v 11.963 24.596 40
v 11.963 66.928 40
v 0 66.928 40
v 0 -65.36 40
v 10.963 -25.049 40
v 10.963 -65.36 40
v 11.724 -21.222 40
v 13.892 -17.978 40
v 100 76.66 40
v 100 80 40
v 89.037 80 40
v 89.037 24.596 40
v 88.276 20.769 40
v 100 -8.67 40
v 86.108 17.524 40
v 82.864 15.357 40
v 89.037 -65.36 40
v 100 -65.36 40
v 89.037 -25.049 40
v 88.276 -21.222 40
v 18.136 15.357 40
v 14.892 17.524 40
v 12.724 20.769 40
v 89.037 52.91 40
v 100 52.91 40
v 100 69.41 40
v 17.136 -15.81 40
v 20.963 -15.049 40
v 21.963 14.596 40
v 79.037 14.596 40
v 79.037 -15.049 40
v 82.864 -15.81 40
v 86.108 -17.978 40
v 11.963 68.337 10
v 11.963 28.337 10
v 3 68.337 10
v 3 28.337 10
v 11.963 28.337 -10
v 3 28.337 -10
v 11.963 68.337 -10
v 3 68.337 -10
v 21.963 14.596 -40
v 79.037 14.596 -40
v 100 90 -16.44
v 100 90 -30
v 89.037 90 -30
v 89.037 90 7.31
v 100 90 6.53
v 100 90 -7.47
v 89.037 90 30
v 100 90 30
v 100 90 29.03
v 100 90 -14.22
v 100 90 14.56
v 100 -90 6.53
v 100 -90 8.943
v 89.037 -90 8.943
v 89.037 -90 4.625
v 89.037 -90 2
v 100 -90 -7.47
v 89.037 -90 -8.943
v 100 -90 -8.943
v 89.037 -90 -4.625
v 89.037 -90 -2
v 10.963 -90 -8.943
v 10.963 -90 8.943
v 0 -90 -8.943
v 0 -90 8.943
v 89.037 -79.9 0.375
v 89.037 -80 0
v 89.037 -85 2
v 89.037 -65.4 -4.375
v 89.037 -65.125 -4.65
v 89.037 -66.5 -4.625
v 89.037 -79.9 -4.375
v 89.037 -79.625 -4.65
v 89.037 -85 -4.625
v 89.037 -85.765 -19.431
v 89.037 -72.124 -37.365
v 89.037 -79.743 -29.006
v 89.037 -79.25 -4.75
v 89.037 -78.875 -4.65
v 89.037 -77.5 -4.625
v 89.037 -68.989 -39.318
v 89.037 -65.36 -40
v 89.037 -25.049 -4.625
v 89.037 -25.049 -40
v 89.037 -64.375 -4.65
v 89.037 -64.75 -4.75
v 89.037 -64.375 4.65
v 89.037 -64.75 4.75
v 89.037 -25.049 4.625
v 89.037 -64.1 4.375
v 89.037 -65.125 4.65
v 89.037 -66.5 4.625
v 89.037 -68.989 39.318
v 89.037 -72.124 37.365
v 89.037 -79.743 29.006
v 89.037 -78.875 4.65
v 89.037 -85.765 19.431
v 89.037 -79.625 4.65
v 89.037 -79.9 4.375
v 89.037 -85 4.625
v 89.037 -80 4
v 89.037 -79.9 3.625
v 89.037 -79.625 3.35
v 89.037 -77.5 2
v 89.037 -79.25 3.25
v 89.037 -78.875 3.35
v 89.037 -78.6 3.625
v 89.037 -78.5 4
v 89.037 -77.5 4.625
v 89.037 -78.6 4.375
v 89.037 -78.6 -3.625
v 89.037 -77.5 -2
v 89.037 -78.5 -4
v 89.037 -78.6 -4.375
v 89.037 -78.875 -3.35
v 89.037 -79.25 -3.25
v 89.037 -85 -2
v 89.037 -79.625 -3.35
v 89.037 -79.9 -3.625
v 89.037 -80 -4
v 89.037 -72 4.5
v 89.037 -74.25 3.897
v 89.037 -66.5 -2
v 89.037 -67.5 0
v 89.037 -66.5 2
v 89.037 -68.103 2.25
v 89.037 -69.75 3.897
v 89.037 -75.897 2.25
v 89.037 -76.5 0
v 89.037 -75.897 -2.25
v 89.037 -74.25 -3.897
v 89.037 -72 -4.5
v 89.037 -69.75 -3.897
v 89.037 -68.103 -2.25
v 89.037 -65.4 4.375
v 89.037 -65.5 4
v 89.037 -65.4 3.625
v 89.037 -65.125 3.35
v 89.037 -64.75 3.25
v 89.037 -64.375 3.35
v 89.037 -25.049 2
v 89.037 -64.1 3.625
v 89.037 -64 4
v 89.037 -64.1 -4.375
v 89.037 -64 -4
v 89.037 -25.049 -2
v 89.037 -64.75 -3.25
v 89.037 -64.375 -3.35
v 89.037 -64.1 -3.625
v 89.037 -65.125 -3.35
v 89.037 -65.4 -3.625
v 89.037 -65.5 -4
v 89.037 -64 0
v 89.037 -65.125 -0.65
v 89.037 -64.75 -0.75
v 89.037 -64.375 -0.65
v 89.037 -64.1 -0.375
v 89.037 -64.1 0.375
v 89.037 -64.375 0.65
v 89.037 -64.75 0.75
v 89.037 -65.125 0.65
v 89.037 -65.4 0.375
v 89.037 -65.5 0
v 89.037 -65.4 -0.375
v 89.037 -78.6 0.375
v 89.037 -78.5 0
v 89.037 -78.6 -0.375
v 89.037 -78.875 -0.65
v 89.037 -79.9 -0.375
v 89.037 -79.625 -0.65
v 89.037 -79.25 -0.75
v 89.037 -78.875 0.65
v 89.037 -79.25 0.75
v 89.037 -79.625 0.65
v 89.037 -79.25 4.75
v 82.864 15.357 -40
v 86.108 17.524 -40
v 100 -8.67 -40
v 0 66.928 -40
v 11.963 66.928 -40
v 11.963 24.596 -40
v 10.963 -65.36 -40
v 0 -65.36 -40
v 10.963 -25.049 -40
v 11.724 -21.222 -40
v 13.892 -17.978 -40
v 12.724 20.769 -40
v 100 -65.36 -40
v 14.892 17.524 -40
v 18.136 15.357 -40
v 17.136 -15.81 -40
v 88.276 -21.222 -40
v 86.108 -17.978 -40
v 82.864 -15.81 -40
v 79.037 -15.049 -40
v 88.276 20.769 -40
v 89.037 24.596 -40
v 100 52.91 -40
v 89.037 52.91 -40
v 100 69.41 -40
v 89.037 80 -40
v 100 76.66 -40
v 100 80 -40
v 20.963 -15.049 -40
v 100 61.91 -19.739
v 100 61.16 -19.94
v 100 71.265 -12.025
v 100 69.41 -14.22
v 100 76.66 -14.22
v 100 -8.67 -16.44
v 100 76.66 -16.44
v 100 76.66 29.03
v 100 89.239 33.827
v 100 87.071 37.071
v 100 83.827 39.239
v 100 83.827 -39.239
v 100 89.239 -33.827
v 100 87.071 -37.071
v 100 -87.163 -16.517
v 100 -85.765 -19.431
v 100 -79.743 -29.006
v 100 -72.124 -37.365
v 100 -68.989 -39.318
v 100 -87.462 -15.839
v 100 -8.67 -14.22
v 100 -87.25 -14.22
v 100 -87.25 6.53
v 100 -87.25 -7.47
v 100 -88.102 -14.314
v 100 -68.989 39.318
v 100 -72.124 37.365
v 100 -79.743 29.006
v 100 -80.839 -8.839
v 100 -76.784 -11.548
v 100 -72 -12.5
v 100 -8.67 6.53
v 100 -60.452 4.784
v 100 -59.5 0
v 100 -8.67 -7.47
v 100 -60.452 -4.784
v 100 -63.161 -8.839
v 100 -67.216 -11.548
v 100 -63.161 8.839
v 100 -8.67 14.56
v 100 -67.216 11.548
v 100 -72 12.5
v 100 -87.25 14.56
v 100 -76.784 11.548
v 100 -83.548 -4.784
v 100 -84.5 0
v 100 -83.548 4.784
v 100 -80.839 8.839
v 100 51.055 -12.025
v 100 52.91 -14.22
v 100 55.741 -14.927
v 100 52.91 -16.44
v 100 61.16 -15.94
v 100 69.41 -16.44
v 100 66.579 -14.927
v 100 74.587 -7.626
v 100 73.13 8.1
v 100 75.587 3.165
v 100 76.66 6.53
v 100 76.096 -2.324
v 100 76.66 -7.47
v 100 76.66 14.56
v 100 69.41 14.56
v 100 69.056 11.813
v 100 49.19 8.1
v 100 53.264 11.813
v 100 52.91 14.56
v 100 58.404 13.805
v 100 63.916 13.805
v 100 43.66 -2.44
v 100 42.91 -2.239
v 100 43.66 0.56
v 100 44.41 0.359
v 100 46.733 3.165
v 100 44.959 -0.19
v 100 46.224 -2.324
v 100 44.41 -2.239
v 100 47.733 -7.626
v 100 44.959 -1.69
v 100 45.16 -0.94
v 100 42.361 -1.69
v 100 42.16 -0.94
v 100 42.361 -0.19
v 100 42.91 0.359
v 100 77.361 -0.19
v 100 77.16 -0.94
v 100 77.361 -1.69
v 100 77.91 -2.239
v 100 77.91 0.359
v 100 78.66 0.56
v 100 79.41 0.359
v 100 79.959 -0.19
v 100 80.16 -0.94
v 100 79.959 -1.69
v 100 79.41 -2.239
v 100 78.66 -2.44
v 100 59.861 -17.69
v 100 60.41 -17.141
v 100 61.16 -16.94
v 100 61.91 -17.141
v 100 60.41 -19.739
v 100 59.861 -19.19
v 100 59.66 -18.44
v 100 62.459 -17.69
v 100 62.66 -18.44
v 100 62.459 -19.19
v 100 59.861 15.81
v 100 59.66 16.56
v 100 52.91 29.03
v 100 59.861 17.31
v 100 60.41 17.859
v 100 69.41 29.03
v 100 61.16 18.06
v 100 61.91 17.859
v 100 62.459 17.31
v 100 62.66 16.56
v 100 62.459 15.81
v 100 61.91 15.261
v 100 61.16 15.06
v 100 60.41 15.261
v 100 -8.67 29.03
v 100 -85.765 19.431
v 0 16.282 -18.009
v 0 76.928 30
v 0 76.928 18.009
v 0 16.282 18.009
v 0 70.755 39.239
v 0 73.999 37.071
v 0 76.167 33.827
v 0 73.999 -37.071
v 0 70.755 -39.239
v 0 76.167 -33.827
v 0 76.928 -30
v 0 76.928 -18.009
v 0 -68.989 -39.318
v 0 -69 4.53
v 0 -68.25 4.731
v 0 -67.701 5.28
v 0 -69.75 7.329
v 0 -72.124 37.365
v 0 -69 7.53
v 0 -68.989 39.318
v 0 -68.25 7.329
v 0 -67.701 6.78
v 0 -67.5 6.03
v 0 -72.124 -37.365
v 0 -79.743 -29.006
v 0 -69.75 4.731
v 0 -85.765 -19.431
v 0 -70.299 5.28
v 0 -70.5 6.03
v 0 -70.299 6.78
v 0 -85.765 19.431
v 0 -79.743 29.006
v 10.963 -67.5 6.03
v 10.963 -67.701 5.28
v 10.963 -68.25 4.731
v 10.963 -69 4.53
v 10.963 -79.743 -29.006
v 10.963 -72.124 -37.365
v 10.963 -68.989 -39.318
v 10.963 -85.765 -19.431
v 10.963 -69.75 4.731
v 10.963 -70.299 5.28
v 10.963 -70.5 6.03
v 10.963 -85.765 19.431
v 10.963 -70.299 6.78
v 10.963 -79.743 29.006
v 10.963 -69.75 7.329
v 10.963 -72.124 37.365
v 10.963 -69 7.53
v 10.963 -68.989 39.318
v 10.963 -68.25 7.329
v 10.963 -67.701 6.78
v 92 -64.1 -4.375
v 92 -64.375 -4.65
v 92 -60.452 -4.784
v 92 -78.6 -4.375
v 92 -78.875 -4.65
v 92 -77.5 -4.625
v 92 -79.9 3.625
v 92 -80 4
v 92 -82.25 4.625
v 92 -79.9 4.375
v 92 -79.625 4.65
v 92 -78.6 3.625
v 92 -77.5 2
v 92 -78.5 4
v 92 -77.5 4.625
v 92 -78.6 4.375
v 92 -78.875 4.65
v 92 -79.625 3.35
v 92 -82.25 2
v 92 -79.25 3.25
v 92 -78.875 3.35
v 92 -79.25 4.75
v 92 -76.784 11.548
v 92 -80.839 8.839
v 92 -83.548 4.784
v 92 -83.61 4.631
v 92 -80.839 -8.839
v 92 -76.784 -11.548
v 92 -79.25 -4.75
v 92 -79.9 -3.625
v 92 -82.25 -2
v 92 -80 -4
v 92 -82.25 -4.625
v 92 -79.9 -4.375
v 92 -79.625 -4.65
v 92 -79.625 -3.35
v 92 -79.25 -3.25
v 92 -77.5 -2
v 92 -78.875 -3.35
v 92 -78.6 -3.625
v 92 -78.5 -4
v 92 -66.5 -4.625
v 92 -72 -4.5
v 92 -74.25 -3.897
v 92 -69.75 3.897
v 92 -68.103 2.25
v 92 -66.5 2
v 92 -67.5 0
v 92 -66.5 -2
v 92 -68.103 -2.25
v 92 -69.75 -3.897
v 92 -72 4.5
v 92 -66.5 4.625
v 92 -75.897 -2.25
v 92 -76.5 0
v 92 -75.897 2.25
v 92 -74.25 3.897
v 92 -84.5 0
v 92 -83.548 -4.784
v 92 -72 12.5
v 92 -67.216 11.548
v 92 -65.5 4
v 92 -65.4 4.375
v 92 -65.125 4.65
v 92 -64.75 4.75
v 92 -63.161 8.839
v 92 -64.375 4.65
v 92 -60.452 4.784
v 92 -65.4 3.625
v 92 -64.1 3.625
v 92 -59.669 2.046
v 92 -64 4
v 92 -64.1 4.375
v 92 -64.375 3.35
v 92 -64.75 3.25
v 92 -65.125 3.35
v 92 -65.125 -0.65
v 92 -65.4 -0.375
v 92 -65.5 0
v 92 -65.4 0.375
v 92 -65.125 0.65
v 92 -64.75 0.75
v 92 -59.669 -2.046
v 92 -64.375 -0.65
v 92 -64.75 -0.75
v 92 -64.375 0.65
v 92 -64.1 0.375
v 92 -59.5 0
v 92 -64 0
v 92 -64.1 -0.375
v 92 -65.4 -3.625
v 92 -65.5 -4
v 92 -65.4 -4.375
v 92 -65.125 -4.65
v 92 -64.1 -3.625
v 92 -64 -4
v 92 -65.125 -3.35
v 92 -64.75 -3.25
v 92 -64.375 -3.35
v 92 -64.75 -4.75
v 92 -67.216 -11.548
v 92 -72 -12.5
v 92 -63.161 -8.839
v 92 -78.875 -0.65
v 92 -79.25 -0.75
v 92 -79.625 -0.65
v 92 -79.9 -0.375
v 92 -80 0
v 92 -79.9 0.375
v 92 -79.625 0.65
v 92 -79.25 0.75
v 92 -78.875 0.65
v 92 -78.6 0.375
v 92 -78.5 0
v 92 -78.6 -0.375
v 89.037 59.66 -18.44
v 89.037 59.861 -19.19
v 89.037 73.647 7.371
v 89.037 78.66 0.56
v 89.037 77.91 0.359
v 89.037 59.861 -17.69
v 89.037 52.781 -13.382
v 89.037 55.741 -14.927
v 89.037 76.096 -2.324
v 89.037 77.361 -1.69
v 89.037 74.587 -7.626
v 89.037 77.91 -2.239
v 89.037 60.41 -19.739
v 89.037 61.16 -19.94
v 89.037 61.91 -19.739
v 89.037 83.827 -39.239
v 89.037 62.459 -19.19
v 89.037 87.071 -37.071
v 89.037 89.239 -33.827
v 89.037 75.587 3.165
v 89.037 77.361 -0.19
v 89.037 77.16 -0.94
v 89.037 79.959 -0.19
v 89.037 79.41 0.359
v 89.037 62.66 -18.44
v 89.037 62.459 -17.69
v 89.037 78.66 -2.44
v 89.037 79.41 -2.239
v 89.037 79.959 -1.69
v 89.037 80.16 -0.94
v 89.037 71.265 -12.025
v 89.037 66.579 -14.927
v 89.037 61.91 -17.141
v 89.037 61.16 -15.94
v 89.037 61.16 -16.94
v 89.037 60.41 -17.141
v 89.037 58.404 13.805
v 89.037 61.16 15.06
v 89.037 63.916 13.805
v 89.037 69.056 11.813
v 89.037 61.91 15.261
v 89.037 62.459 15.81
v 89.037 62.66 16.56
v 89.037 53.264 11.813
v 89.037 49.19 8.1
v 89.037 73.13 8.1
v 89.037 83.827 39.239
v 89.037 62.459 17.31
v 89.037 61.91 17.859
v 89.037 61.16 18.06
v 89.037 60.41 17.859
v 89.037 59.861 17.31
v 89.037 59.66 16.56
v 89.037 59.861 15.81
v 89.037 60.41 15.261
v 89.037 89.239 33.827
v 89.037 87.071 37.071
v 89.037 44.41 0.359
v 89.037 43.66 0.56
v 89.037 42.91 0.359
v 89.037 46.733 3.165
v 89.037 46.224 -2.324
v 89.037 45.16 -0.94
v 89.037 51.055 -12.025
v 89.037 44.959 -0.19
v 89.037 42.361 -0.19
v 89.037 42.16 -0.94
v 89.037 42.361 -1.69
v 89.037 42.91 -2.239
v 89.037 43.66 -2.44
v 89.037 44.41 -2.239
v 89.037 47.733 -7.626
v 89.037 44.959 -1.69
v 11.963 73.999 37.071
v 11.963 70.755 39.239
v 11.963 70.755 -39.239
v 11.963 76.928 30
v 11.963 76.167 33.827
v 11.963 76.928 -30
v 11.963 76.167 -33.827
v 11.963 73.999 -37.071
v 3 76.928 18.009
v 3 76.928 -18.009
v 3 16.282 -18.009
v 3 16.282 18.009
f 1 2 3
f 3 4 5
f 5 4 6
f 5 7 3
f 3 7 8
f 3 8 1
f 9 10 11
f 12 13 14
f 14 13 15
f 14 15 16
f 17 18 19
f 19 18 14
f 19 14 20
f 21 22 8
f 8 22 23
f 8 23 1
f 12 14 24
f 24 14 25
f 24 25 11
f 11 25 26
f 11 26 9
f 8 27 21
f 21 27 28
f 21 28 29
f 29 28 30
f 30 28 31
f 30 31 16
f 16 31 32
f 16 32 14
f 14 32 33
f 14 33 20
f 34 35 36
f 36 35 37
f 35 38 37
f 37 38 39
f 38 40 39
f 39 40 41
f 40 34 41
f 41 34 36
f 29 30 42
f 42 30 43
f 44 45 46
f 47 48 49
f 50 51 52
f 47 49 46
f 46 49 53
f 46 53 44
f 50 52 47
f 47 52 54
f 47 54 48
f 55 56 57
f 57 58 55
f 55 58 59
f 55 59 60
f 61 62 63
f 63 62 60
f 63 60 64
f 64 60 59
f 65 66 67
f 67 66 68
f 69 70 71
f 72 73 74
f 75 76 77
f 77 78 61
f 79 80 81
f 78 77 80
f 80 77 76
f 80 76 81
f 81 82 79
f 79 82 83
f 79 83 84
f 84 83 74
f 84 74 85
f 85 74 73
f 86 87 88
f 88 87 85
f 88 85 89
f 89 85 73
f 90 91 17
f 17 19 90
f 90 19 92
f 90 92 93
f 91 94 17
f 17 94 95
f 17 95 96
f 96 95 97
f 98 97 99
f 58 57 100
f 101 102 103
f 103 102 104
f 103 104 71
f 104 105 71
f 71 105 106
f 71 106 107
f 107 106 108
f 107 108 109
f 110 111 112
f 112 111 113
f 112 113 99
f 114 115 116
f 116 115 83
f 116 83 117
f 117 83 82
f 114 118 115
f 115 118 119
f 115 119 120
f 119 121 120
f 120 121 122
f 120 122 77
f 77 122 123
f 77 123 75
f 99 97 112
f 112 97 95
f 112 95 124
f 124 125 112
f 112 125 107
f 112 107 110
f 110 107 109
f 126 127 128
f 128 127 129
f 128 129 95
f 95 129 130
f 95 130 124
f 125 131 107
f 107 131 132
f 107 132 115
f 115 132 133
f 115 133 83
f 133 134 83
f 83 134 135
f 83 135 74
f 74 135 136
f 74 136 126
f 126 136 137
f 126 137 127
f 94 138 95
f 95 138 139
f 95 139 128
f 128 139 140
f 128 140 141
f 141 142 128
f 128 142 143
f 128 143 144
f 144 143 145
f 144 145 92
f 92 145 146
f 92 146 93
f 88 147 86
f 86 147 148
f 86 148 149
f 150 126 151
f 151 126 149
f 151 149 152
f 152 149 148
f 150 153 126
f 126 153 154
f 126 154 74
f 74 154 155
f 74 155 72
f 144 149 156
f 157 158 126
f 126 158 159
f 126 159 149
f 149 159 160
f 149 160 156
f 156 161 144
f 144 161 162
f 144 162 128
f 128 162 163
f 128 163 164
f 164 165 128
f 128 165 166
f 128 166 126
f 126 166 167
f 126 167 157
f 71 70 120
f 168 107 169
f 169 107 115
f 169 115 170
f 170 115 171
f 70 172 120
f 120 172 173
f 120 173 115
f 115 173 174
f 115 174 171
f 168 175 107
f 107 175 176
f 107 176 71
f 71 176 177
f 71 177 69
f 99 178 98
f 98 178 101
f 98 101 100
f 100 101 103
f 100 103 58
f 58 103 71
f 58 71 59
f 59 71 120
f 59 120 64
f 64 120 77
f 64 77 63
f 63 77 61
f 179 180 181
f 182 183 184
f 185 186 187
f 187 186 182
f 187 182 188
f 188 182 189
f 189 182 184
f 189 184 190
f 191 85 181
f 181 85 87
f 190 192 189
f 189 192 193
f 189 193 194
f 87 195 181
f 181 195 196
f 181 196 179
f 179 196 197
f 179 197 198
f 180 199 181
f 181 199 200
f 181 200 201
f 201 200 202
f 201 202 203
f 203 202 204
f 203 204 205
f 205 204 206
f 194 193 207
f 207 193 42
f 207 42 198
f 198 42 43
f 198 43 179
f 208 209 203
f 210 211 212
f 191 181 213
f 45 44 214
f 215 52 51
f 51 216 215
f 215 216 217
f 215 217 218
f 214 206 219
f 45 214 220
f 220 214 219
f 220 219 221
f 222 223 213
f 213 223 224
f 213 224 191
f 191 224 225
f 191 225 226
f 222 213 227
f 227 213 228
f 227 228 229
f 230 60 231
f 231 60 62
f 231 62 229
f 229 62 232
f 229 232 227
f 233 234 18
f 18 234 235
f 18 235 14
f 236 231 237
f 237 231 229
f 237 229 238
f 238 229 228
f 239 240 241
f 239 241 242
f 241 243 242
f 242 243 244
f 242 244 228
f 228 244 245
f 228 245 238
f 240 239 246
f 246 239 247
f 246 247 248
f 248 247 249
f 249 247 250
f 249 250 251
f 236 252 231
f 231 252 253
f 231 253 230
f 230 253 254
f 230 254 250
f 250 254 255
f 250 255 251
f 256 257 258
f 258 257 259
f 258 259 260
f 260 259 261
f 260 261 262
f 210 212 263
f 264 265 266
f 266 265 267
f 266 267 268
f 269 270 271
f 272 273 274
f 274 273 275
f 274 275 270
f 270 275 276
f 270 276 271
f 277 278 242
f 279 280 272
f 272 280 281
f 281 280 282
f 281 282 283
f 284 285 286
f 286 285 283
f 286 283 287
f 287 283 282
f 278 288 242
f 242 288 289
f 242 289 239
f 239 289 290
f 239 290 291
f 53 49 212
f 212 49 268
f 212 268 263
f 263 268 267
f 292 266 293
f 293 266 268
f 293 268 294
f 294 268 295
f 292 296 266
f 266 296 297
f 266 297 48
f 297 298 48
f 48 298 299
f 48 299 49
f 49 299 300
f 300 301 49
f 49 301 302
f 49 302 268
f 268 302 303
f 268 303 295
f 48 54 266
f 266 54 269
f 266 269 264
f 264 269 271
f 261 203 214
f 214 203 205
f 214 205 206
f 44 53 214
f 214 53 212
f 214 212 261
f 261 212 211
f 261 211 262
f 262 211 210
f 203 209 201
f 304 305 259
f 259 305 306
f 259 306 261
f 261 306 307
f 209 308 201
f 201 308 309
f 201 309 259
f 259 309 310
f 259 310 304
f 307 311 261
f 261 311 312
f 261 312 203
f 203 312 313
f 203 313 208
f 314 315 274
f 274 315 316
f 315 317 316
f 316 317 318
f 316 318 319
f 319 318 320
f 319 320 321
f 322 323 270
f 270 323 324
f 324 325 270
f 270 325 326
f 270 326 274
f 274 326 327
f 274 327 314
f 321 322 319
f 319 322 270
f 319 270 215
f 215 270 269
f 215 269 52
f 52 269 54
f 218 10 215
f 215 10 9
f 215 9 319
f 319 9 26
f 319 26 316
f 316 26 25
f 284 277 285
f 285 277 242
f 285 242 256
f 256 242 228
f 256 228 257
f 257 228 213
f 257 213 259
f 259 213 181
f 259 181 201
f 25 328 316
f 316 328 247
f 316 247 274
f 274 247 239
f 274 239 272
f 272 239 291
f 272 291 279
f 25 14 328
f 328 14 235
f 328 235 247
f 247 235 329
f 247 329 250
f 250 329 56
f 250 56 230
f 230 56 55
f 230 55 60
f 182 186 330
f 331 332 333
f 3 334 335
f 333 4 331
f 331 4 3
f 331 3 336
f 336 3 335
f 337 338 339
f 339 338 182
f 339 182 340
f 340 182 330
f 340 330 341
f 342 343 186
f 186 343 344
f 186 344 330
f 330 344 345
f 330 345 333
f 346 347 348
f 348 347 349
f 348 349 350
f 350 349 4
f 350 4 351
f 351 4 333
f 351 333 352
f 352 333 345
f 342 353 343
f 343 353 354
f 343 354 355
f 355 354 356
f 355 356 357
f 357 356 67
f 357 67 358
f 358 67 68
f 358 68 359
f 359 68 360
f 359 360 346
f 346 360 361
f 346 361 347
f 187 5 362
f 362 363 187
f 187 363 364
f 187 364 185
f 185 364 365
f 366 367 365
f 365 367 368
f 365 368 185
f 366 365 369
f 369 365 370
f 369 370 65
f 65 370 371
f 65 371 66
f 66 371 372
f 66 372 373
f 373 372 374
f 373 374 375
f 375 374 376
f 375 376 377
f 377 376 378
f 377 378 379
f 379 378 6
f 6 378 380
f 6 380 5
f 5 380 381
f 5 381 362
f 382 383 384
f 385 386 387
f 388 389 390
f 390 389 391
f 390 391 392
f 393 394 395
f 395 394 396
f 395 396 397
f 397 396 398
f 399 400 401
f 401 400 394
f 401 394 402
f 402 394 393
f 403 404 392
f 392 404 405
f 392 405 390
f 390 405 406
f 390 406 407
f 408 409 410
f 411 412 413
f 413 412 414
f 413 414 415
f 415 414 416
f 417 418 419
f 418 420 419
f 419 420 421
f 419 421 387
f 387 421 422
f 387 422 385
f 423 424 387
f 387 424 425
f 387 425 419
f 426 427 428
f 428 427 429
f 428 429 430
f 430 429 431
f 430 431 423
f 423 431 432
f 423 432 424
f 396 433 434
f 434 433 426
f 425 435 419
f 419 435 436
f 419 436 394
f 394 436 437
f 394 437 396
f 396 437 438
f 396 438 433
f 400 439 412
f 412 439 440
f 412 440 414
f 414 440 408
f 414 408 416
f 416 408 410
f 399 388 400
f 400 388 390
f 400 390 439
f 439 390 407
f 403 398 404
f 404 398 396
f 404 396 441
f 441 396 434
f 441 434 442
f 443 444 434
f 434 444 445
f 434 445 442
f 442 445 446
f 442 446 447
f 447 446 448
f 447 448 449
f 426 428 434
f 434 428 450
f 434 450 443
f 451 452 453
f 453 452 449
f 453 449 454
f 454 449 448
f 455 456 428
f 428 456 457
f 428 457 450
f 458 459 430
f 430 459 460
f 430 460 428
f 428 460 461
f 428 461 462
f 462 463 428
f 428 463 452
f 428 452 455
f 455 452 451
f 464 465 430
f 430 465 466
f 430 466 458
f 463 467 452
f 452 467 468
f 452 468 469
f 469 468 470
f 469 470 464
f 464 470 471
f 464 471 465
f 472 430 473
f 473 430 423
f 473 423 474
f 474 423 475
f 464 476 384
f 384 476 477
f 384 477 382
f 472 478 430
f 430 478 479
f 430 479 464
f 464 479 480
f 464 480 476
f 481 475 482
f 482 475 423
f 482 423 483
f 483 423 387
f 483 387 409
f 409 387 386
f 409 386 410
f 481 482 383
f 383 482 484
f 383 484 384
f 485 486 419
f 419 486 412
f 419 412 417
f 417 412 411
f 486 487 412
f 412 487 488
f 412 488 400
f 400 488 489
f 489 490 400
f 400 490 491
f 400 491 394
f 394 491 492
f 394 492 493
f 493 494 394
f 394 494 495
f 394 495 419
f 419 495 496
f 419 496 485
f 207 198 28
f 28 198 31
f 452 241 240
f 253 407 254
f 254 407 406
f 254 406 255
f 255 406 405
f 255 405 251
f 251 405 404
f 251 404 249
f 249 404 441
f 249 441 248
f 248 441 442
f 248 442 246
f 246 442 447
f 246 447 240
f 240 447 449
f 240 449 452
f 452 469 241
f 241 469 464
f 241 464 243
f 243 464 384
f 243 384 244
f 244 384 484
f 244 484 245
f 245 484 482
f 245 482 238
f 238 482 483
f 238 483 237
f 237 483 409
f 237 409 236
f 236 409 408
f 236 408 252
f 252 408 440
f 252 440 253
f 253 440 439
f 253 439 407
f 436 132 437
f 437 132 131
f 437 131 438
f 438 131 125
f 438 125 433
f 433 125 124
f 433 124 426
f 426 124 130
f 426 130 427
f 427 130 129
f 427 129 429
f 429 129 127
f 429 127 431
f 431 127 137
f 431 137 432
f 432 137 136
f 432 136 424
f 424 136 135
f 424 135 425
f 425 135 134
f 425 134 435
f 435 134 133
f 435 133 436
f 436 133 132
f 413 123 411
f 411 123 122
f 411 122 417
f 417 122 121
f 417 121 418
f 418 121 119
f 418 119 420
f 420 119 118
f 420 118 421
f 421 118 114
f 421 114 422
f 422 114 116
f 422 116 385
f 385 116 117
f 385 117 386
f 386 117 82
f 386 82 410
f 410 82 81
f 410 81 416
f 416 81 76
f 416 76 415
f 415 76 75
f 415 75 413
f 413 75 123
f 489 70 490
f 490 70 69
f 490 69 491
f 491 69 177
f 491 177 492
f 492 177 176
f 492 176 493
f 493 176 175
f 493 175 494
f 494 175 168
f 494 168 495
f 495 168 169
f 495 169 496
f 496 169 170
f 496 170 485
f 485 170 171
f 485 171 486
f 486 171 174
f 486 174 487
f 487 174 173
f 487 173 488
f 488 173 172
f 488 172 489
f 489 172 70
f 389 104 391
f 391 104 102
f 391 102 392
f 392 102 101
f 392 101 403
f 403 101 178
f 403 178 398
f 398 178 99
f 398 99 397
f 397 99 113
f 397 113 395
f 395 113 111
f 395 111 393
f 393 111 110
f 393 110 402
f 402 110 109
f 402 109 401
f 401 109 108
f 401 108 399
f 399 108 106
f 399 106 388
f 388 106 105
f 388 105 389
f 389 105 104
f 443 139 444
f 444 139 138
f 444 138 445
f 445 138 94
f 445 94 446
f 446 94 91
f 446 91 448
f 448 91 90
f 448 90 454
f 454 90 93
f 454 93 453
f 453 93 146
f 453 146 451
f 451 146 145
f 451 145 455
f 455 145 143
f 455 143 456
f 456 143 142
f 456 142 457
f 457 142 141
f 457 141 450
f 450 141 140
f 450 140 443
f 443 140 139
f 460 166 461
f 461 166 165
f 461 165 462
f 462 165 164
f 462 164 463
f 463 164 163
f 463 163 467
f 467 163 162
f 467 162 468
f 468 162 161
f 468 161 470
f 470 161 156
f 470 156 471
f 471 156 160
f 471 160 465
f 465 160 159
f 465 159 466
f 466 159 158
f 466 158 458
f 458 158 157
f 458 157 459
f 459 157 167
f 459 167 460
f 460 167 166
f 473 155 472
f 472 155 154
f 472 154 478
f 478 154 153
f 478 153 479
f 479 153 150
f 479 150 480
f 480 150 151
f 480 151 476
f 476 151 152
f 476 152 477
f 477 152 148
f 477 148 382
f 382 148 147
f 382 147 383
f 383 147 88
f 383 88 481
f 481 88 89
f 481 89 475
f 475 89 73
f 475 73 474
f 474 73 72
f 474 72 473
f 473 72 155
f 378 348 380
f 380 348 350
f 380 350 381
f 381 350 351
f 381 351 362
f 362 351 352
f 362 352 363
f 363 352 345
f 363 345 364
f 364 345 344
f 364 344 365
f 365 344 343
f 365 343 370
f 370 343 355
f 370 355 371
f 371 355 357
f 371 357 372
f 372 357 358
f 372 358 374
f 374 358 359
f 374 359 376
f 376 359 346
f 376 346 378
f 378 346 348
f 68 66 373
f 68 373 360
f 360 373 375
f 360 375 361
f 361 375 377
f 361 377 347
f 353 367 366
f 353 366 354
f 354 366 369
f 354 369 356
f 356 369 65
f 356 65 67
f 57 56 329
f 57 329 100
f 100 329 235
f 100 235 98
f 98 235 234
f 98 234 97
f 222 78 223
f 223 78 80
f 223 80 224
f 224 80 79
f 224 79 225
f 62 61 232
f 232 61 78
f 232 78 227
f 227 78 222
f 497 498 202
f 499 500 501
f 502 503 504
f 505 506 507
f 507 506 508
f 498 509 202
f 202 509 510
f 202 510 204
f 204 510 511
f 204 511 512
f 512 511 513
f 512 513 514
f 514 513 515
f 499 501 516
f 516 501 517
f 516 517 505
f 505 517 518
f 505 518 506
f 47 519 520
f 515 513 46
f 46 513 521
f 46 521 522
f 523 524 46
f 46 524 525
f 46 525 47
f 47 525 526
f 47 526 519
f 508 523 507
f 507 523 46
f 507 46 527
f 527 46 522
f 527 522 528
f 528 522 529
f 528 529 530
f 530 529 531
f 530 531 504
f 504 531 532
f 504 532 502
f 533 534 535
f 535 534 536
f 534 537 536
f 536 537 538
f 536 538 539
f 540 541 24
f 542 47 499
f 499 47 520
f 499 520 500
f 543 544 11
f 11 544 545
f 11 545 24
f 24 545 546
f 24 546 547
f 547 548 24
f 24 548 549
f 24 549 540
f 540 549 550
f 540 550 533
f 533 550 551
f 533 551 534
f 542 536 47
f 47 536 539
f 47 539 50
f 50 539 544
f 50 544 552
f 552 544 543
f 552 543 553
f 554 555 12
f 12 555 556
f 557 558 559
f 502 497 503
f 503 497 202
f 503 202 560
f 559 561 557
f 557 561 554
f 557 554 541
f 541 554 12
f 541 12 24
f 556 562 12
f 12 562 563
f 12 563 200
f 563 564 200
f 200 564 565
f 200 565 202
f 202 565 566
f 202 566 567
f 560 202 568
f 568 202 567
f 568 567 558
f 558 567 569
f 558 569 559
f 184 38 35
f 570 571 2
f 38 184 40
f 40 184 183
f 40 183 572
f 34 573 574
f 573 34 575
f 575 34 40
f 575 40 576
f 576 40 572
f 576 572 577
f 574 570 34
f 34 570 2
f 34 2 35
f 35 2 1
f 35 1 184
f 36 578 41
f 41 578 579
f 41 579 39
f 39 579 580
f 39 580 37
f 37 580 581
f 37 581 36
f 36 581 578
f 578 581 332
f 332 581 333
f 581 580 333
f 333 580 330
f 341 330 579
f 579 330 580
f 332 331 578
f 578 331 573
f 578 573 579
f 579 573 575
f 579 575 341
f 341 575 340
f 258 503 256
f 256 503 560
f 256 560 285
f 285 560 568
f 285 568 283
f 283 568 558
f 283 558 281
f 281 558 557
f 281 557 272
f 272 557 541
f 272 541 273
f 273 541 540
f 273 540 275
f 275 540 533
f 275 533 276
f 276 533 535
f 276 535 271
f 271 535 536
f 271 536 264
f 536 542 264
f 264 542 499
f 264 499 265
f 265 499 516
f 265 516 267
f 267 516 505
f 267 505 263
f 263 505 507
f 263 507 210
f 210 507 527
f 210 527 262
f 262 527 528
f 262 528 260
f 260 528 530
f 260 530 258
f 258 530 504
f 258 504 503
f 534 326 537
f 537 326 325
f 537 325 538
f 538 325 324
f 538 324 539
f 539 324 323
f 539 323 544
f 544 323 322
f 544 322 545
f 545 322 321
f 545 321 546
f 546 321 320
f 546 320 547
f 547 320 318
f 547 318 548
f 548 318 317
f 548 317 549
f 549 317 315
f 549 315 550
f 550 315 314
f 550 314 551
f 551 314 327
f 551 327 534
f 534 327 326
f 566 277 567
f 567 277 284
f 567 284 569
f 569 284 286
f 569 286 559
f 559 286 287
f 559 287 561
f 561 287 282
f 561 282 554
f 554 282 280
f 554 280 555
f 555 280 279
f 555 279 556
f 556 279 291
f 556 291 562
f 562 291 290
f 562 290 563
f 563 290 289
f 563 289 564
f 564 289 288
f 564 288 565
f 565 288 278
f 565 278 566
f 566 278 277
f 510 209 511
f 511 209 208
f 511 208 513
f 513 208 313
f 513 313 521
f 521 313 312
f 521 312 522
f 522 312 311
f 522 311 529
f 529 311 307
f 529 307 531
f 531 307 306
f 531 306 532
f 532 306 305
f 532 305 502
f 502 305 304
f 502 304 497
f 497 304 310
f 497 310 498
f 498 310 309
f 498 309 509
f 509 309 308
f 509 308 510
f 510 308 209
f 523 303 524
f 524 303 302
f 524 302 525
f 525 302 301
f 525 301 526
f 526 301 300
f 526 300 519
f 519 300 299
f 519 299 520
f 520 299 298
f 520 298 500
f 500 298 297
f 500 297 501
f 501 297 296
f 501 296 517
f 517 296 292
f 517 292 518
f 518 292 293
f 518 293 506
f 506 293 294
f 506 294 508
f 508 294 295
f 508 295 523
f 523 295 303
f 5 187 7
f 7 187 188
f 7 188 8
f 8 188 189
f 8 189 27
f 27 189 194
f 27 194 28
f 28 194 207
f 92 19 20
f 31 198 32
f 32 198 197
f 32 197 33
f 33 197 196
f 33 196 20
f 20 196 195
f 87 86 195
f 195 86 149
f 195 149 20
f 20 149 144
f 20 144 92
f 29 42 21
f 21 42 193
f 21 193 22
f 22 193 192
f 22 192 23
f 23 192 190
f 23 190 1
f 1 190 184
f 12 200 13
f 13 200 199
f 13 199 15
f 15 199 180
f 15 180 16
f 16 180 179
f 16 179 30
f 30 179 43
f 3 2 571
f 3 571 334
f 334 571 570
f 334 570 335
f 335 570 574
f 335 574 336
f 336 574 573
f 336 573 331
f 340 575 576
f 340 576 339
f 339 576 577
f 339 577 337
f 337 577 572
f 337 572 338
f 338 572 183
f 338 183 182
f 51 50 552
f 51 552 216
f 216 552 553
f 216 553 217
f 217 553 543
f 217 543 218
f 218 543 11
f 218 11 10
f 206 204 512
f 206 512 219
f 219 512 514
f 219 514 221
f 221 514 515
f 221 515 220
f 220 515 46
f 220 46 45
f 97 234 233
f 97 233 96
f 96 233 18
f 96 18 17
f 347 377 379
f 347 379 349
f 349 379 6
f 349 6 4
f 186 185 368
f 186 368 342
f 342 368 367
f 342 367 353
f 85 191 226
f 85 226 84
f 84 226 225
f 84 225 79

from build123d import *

# Parameters (mm, degrees)
SKETCH1_W           = 80
SKETCH1_H           = 180
BOSS_EXTRUDE1_DEPTH = 100
SKETCH2_W           = 78.07363092
SKETCH2_H           = 74.951044638
CUT_EXTRUDE1_DEPTH  = 90
SKETCH3_R           = 12.5
CUT_EXTRUDE2_DEPTH  = 8
SKETCH4_R           = 0.75
CUT_EXTRUDE3_DEPTH  = 8
SKETCH5_R           = 1.5
CUT_EXTRUDE4_DEPTH  = 18
CUT_EXTRUDE5_DEPTH  = 110
SKETCH8_W           = 78.07363092
SKETCH8_H           = 150.808878852
CUT_EXTRUDE7_DEPTH  = 110
SKETCH12_W          = 80
SKETCH12_H          = 75.404439426
BOSS_EXTRUDE2_DEPTH = 1
SKETCH13_W          = 20
SKETCH13_H          = 40
CUT_EXTRUDE9_DEPTH  = 18
SKETCH14_W          = 36.018811194
SKETCH14_H          = 61.676046566
CUT_EXTRUDE10_DEPTH = 3
SKETCH15_W          = 80
SKETCH15_H          = 13.072149311
CUT_EXTRUDE11_DEPTH = 30
SKETCH16_R          = 15
CUT_EXTRUDE12_DEPTH = 30
SKETCH17_R          = 1.5
CUT_EXTRUDE13_DEPTH = 13
FILLET1_R           = 10
FILLET2_R           = 10
FILLET3_R           = 10


with BuildPart() as part:
    # Sketch1 → Boss-Extrude1 (new body)
    with BuildSketch(Plane(origin=(0, 0, 0), x_dir=(0, 0, -1), z_dir=(1, 0, 0))):
        Rectangle(SKETCH1_W, SKETCH1_H)
    extrude(amount=BOSS_EXTRUDE1_DEPTH)

    # Sketch2 → Cut-Extrude1 (cut)
    with BuildSketch(Plane.XY.offset(40)):
        with Locations((50, -52.524477681)):
            Rectangle(SKETCH2_W, SKETCH2_H)
    extrude(amount=-CUT_EXTRUDE1_DEPTH, mode=Mode.SUBTRACT)

    # Sketch3 → Cut-Extrude2 (cut)
    with BuildSketch(Plane(origin=(100, 0, 0), x_dir=(0, 0, -1), z_dir=(1, 0, 0))):
        with Locations((0, -72)):
            Circle(SKETCH3_R)
    extrude(amount=-CUT_EXTRUDE2_DEPTH, mode=Mode.SUBTRACT)

    # Sketch4 → Cut-Extrude3 (cut)
    with BuildSketch(Plane.ZY.offset(-89.03681546)):
        with BuildLine():
            ThreePointArc((-4.5, -72), (0, -76.5), (4.5, -72))
            Line((4.5, -72), (-4.5, -72))
        make_face()
        with BuildLine():
            Line((-4.5, -72), (4.5, -72))
            ThreePointArc((4.5, -72), (0, -67.5), (-4.5, -72))
        make_face()
        with Locations(Location((-4, -64.75, 0), (0, 0, 270))):
            Circle(SKETCH4_R)
        with Locations(Location((0, -64.75, 0), (0, 0, 270))):
            Circle(SKETCH4_R)
        with Locations(Location((4, -64.75, 0), (0, 0, 270))):
            Circle(SKETCH4_R)
        with Locations(Location((4, -79.25, 0), (0, 0, 270))):
            Circle(SKETCH4_R)
        with Locations(Location((0, -79.25, 0), (0, 0, 270))):
            Circle(SKETCH4_R)
        with Locations(Location((-4, -79.25, 0), (0, 0, 270))):
            Circle(SKETCH4_R)
    extrude(amount=-CUT_EXTRUDE3_DEPTH, mode=Mode.SUBTRACT)

    # Sketch5 → Cut-Extrude4 (cut)
    with BuildSketch(Plane.ZY):
        with Locations((6.03, -69)):
            Circle(SKETCH5_R)
    extrude(amount=-CUT_EXTRUDE4_DEPTH, mode=Mode.SUBTRACT)

    # Sketch6 → Cut-Extrude5 (cut)
    with BuildSketch(Plane(origin=(100, 0, 0), x_dir=(0, 0, -1), z_dir=(1, 0, 0))):
        with BuildLine():
            Line((40, -69.065791889), (40, -90))
            Line((40, -90), (8.943223126, -90))
            ThreePointArc((8.943223126, -90), (26.043708831, -81.865168262), (40, -69.065791889))
        make_face()
        with BuildLine():
            Line((-40, -69.065791889), (-40, -90))
            Line((-40, -90), (-8.943223126, -90))
            ThreePointArc((-8.943223126, -90), (-26.043708831, -81.865168262), (-40, -69.065791889))
        make_face()
    extrude(amount=-CUT_EXTRUDE5_DEPTH, mode=Mode.SUBTRACT)

    # Sketch8 → Cut-Extrude7 (cut)
    with BuildSketch(Plane.XY.offset(40)):
        with Locations((50, 90)):
            Rectangle(SKETCH8_W, SKETCH8_H)
    extrude(amount=-CUT_EXTRUDE7_DEPTH, mode=Mode.SUBTRACT)

    # Sketch12 → Boss-Extrude2 (add)
    with BuildSketch(Plane(origin=(10.96318454, 0, 0), x_dir=(0, 0, -1), z_dir=(1, 0, 0))):
        with Locations((0, 52.297780287)):
            Rectangle(SKETCH12_W, SKETCH12_H)
    extrude(amount=BOSS_EXTRUDE2_DEPTH)

    # Sketch13 → Cut-Extrude9 (cut)
    with BuildSketch(Plane.ZY):
        with Locations((0, 48.337059594)):
            Rectangle(SKETCH13_W, SKETCH13_H)
    extrude(amount=-CUT_EXTRUDE9_DEPTH, mode=Mode.SUBTRACT)

    # Sketch14 → Cut-Extrude10 (cut)
    with BuildSketch(Plane.ZY):
        with Locations((0, 47.120499576)):
            Rectangle(SKETCH14_W, SKETCH14_H)
    extrude(amount=-CUT_EXTRUDE10_DEPTH, mode=Mode.SUBTRACT)

    # Sketch15 → Cut-Extrude11 (cut)
    with BuildSketch(Plane(origin=(11.96318454, 0, 0), x_dir=(0, 0, -1), z_dir=(1, 0, 0))):
        with Locations((0, 83.463925345)):
            Rectangle(SKETCH15_W, SKETCH15_H)
    extrude(amount=-CUT_EXTRUDE11_DEPTH, mode=Mode.SUBTRACT)

    # Sketch16 → Cut-Extrude12 (cut)
    with BuildSketch(Plane(origin=(100, 0, 0), x_dir=(0, 0, -1), z_dir=(1, 0, 0))):
        with Locations((0.94, 61.16)):
            Circle(SKETCH16_R)
    extrude(amount=-CUT_EXTRUDE12_DEPTH, mode=Mode.SUBTRACT)

    # Sketch17 → Cut-Extrude13 (cut)
    with BuildSketch(Plane(origin=(100, 0, 0), x_dir=(0, 0, -1), z_dir=(1, 0, 0))):
        with Locations((0.94, 78.66)):
            Circle(SKETCH17_R)
        with Locations((18.44, 61.16)):
            Circle(SKETCH17_R)
        with Locations((0.94, 43.66)):
            Circle(SKETCH17_R)
        with Locations((-16.56, 61.16)):
            Circle(SKETCH17_R)
    extrude(amount=-CUT_EXTRUDE13_DEPTH, mode=Mode.SUBTRACT)

    # Fillet1
    fillet1_edges = [part.edges().sort_by_distance(p)[0] for p in [
        (89.03681546, 14.595560574, 0),
        (11.96318454, 14.595560574, 0),
        (89.03681546, -15.048955362, 0),
        (10.96318454, -15.048955362, 0),
    ]]
    fillet(fillet1_edges, radius=FILLET1_R)

    # Fillet2
    fillet2_edges = [part.edges().sort_by_distance(p)[0] for p in [
        (5.98159227, 76.927850689, 40),
        (5.98159227, 76.927850689, -40),
        (94.51840773, 90, 40),
        (94.51840773, 90, -40),
    ]]
    fillet(fillet2_edges, radius=FILLET2_R)

    # Fillet3
    fillet3_edges = [part.edges().sort_by_distance(p)[0] for p in [
        (94.51840773, -69.065791889, 40),
        (5.48159227, -69.065791889, 40),
        (94.51840773, -69.065791889, -40),
        (5.48159227, -69.065791889, -40),
    ]]
    fillet(fillet3_edges, radius=FILLET3_R)


solid = part.part
